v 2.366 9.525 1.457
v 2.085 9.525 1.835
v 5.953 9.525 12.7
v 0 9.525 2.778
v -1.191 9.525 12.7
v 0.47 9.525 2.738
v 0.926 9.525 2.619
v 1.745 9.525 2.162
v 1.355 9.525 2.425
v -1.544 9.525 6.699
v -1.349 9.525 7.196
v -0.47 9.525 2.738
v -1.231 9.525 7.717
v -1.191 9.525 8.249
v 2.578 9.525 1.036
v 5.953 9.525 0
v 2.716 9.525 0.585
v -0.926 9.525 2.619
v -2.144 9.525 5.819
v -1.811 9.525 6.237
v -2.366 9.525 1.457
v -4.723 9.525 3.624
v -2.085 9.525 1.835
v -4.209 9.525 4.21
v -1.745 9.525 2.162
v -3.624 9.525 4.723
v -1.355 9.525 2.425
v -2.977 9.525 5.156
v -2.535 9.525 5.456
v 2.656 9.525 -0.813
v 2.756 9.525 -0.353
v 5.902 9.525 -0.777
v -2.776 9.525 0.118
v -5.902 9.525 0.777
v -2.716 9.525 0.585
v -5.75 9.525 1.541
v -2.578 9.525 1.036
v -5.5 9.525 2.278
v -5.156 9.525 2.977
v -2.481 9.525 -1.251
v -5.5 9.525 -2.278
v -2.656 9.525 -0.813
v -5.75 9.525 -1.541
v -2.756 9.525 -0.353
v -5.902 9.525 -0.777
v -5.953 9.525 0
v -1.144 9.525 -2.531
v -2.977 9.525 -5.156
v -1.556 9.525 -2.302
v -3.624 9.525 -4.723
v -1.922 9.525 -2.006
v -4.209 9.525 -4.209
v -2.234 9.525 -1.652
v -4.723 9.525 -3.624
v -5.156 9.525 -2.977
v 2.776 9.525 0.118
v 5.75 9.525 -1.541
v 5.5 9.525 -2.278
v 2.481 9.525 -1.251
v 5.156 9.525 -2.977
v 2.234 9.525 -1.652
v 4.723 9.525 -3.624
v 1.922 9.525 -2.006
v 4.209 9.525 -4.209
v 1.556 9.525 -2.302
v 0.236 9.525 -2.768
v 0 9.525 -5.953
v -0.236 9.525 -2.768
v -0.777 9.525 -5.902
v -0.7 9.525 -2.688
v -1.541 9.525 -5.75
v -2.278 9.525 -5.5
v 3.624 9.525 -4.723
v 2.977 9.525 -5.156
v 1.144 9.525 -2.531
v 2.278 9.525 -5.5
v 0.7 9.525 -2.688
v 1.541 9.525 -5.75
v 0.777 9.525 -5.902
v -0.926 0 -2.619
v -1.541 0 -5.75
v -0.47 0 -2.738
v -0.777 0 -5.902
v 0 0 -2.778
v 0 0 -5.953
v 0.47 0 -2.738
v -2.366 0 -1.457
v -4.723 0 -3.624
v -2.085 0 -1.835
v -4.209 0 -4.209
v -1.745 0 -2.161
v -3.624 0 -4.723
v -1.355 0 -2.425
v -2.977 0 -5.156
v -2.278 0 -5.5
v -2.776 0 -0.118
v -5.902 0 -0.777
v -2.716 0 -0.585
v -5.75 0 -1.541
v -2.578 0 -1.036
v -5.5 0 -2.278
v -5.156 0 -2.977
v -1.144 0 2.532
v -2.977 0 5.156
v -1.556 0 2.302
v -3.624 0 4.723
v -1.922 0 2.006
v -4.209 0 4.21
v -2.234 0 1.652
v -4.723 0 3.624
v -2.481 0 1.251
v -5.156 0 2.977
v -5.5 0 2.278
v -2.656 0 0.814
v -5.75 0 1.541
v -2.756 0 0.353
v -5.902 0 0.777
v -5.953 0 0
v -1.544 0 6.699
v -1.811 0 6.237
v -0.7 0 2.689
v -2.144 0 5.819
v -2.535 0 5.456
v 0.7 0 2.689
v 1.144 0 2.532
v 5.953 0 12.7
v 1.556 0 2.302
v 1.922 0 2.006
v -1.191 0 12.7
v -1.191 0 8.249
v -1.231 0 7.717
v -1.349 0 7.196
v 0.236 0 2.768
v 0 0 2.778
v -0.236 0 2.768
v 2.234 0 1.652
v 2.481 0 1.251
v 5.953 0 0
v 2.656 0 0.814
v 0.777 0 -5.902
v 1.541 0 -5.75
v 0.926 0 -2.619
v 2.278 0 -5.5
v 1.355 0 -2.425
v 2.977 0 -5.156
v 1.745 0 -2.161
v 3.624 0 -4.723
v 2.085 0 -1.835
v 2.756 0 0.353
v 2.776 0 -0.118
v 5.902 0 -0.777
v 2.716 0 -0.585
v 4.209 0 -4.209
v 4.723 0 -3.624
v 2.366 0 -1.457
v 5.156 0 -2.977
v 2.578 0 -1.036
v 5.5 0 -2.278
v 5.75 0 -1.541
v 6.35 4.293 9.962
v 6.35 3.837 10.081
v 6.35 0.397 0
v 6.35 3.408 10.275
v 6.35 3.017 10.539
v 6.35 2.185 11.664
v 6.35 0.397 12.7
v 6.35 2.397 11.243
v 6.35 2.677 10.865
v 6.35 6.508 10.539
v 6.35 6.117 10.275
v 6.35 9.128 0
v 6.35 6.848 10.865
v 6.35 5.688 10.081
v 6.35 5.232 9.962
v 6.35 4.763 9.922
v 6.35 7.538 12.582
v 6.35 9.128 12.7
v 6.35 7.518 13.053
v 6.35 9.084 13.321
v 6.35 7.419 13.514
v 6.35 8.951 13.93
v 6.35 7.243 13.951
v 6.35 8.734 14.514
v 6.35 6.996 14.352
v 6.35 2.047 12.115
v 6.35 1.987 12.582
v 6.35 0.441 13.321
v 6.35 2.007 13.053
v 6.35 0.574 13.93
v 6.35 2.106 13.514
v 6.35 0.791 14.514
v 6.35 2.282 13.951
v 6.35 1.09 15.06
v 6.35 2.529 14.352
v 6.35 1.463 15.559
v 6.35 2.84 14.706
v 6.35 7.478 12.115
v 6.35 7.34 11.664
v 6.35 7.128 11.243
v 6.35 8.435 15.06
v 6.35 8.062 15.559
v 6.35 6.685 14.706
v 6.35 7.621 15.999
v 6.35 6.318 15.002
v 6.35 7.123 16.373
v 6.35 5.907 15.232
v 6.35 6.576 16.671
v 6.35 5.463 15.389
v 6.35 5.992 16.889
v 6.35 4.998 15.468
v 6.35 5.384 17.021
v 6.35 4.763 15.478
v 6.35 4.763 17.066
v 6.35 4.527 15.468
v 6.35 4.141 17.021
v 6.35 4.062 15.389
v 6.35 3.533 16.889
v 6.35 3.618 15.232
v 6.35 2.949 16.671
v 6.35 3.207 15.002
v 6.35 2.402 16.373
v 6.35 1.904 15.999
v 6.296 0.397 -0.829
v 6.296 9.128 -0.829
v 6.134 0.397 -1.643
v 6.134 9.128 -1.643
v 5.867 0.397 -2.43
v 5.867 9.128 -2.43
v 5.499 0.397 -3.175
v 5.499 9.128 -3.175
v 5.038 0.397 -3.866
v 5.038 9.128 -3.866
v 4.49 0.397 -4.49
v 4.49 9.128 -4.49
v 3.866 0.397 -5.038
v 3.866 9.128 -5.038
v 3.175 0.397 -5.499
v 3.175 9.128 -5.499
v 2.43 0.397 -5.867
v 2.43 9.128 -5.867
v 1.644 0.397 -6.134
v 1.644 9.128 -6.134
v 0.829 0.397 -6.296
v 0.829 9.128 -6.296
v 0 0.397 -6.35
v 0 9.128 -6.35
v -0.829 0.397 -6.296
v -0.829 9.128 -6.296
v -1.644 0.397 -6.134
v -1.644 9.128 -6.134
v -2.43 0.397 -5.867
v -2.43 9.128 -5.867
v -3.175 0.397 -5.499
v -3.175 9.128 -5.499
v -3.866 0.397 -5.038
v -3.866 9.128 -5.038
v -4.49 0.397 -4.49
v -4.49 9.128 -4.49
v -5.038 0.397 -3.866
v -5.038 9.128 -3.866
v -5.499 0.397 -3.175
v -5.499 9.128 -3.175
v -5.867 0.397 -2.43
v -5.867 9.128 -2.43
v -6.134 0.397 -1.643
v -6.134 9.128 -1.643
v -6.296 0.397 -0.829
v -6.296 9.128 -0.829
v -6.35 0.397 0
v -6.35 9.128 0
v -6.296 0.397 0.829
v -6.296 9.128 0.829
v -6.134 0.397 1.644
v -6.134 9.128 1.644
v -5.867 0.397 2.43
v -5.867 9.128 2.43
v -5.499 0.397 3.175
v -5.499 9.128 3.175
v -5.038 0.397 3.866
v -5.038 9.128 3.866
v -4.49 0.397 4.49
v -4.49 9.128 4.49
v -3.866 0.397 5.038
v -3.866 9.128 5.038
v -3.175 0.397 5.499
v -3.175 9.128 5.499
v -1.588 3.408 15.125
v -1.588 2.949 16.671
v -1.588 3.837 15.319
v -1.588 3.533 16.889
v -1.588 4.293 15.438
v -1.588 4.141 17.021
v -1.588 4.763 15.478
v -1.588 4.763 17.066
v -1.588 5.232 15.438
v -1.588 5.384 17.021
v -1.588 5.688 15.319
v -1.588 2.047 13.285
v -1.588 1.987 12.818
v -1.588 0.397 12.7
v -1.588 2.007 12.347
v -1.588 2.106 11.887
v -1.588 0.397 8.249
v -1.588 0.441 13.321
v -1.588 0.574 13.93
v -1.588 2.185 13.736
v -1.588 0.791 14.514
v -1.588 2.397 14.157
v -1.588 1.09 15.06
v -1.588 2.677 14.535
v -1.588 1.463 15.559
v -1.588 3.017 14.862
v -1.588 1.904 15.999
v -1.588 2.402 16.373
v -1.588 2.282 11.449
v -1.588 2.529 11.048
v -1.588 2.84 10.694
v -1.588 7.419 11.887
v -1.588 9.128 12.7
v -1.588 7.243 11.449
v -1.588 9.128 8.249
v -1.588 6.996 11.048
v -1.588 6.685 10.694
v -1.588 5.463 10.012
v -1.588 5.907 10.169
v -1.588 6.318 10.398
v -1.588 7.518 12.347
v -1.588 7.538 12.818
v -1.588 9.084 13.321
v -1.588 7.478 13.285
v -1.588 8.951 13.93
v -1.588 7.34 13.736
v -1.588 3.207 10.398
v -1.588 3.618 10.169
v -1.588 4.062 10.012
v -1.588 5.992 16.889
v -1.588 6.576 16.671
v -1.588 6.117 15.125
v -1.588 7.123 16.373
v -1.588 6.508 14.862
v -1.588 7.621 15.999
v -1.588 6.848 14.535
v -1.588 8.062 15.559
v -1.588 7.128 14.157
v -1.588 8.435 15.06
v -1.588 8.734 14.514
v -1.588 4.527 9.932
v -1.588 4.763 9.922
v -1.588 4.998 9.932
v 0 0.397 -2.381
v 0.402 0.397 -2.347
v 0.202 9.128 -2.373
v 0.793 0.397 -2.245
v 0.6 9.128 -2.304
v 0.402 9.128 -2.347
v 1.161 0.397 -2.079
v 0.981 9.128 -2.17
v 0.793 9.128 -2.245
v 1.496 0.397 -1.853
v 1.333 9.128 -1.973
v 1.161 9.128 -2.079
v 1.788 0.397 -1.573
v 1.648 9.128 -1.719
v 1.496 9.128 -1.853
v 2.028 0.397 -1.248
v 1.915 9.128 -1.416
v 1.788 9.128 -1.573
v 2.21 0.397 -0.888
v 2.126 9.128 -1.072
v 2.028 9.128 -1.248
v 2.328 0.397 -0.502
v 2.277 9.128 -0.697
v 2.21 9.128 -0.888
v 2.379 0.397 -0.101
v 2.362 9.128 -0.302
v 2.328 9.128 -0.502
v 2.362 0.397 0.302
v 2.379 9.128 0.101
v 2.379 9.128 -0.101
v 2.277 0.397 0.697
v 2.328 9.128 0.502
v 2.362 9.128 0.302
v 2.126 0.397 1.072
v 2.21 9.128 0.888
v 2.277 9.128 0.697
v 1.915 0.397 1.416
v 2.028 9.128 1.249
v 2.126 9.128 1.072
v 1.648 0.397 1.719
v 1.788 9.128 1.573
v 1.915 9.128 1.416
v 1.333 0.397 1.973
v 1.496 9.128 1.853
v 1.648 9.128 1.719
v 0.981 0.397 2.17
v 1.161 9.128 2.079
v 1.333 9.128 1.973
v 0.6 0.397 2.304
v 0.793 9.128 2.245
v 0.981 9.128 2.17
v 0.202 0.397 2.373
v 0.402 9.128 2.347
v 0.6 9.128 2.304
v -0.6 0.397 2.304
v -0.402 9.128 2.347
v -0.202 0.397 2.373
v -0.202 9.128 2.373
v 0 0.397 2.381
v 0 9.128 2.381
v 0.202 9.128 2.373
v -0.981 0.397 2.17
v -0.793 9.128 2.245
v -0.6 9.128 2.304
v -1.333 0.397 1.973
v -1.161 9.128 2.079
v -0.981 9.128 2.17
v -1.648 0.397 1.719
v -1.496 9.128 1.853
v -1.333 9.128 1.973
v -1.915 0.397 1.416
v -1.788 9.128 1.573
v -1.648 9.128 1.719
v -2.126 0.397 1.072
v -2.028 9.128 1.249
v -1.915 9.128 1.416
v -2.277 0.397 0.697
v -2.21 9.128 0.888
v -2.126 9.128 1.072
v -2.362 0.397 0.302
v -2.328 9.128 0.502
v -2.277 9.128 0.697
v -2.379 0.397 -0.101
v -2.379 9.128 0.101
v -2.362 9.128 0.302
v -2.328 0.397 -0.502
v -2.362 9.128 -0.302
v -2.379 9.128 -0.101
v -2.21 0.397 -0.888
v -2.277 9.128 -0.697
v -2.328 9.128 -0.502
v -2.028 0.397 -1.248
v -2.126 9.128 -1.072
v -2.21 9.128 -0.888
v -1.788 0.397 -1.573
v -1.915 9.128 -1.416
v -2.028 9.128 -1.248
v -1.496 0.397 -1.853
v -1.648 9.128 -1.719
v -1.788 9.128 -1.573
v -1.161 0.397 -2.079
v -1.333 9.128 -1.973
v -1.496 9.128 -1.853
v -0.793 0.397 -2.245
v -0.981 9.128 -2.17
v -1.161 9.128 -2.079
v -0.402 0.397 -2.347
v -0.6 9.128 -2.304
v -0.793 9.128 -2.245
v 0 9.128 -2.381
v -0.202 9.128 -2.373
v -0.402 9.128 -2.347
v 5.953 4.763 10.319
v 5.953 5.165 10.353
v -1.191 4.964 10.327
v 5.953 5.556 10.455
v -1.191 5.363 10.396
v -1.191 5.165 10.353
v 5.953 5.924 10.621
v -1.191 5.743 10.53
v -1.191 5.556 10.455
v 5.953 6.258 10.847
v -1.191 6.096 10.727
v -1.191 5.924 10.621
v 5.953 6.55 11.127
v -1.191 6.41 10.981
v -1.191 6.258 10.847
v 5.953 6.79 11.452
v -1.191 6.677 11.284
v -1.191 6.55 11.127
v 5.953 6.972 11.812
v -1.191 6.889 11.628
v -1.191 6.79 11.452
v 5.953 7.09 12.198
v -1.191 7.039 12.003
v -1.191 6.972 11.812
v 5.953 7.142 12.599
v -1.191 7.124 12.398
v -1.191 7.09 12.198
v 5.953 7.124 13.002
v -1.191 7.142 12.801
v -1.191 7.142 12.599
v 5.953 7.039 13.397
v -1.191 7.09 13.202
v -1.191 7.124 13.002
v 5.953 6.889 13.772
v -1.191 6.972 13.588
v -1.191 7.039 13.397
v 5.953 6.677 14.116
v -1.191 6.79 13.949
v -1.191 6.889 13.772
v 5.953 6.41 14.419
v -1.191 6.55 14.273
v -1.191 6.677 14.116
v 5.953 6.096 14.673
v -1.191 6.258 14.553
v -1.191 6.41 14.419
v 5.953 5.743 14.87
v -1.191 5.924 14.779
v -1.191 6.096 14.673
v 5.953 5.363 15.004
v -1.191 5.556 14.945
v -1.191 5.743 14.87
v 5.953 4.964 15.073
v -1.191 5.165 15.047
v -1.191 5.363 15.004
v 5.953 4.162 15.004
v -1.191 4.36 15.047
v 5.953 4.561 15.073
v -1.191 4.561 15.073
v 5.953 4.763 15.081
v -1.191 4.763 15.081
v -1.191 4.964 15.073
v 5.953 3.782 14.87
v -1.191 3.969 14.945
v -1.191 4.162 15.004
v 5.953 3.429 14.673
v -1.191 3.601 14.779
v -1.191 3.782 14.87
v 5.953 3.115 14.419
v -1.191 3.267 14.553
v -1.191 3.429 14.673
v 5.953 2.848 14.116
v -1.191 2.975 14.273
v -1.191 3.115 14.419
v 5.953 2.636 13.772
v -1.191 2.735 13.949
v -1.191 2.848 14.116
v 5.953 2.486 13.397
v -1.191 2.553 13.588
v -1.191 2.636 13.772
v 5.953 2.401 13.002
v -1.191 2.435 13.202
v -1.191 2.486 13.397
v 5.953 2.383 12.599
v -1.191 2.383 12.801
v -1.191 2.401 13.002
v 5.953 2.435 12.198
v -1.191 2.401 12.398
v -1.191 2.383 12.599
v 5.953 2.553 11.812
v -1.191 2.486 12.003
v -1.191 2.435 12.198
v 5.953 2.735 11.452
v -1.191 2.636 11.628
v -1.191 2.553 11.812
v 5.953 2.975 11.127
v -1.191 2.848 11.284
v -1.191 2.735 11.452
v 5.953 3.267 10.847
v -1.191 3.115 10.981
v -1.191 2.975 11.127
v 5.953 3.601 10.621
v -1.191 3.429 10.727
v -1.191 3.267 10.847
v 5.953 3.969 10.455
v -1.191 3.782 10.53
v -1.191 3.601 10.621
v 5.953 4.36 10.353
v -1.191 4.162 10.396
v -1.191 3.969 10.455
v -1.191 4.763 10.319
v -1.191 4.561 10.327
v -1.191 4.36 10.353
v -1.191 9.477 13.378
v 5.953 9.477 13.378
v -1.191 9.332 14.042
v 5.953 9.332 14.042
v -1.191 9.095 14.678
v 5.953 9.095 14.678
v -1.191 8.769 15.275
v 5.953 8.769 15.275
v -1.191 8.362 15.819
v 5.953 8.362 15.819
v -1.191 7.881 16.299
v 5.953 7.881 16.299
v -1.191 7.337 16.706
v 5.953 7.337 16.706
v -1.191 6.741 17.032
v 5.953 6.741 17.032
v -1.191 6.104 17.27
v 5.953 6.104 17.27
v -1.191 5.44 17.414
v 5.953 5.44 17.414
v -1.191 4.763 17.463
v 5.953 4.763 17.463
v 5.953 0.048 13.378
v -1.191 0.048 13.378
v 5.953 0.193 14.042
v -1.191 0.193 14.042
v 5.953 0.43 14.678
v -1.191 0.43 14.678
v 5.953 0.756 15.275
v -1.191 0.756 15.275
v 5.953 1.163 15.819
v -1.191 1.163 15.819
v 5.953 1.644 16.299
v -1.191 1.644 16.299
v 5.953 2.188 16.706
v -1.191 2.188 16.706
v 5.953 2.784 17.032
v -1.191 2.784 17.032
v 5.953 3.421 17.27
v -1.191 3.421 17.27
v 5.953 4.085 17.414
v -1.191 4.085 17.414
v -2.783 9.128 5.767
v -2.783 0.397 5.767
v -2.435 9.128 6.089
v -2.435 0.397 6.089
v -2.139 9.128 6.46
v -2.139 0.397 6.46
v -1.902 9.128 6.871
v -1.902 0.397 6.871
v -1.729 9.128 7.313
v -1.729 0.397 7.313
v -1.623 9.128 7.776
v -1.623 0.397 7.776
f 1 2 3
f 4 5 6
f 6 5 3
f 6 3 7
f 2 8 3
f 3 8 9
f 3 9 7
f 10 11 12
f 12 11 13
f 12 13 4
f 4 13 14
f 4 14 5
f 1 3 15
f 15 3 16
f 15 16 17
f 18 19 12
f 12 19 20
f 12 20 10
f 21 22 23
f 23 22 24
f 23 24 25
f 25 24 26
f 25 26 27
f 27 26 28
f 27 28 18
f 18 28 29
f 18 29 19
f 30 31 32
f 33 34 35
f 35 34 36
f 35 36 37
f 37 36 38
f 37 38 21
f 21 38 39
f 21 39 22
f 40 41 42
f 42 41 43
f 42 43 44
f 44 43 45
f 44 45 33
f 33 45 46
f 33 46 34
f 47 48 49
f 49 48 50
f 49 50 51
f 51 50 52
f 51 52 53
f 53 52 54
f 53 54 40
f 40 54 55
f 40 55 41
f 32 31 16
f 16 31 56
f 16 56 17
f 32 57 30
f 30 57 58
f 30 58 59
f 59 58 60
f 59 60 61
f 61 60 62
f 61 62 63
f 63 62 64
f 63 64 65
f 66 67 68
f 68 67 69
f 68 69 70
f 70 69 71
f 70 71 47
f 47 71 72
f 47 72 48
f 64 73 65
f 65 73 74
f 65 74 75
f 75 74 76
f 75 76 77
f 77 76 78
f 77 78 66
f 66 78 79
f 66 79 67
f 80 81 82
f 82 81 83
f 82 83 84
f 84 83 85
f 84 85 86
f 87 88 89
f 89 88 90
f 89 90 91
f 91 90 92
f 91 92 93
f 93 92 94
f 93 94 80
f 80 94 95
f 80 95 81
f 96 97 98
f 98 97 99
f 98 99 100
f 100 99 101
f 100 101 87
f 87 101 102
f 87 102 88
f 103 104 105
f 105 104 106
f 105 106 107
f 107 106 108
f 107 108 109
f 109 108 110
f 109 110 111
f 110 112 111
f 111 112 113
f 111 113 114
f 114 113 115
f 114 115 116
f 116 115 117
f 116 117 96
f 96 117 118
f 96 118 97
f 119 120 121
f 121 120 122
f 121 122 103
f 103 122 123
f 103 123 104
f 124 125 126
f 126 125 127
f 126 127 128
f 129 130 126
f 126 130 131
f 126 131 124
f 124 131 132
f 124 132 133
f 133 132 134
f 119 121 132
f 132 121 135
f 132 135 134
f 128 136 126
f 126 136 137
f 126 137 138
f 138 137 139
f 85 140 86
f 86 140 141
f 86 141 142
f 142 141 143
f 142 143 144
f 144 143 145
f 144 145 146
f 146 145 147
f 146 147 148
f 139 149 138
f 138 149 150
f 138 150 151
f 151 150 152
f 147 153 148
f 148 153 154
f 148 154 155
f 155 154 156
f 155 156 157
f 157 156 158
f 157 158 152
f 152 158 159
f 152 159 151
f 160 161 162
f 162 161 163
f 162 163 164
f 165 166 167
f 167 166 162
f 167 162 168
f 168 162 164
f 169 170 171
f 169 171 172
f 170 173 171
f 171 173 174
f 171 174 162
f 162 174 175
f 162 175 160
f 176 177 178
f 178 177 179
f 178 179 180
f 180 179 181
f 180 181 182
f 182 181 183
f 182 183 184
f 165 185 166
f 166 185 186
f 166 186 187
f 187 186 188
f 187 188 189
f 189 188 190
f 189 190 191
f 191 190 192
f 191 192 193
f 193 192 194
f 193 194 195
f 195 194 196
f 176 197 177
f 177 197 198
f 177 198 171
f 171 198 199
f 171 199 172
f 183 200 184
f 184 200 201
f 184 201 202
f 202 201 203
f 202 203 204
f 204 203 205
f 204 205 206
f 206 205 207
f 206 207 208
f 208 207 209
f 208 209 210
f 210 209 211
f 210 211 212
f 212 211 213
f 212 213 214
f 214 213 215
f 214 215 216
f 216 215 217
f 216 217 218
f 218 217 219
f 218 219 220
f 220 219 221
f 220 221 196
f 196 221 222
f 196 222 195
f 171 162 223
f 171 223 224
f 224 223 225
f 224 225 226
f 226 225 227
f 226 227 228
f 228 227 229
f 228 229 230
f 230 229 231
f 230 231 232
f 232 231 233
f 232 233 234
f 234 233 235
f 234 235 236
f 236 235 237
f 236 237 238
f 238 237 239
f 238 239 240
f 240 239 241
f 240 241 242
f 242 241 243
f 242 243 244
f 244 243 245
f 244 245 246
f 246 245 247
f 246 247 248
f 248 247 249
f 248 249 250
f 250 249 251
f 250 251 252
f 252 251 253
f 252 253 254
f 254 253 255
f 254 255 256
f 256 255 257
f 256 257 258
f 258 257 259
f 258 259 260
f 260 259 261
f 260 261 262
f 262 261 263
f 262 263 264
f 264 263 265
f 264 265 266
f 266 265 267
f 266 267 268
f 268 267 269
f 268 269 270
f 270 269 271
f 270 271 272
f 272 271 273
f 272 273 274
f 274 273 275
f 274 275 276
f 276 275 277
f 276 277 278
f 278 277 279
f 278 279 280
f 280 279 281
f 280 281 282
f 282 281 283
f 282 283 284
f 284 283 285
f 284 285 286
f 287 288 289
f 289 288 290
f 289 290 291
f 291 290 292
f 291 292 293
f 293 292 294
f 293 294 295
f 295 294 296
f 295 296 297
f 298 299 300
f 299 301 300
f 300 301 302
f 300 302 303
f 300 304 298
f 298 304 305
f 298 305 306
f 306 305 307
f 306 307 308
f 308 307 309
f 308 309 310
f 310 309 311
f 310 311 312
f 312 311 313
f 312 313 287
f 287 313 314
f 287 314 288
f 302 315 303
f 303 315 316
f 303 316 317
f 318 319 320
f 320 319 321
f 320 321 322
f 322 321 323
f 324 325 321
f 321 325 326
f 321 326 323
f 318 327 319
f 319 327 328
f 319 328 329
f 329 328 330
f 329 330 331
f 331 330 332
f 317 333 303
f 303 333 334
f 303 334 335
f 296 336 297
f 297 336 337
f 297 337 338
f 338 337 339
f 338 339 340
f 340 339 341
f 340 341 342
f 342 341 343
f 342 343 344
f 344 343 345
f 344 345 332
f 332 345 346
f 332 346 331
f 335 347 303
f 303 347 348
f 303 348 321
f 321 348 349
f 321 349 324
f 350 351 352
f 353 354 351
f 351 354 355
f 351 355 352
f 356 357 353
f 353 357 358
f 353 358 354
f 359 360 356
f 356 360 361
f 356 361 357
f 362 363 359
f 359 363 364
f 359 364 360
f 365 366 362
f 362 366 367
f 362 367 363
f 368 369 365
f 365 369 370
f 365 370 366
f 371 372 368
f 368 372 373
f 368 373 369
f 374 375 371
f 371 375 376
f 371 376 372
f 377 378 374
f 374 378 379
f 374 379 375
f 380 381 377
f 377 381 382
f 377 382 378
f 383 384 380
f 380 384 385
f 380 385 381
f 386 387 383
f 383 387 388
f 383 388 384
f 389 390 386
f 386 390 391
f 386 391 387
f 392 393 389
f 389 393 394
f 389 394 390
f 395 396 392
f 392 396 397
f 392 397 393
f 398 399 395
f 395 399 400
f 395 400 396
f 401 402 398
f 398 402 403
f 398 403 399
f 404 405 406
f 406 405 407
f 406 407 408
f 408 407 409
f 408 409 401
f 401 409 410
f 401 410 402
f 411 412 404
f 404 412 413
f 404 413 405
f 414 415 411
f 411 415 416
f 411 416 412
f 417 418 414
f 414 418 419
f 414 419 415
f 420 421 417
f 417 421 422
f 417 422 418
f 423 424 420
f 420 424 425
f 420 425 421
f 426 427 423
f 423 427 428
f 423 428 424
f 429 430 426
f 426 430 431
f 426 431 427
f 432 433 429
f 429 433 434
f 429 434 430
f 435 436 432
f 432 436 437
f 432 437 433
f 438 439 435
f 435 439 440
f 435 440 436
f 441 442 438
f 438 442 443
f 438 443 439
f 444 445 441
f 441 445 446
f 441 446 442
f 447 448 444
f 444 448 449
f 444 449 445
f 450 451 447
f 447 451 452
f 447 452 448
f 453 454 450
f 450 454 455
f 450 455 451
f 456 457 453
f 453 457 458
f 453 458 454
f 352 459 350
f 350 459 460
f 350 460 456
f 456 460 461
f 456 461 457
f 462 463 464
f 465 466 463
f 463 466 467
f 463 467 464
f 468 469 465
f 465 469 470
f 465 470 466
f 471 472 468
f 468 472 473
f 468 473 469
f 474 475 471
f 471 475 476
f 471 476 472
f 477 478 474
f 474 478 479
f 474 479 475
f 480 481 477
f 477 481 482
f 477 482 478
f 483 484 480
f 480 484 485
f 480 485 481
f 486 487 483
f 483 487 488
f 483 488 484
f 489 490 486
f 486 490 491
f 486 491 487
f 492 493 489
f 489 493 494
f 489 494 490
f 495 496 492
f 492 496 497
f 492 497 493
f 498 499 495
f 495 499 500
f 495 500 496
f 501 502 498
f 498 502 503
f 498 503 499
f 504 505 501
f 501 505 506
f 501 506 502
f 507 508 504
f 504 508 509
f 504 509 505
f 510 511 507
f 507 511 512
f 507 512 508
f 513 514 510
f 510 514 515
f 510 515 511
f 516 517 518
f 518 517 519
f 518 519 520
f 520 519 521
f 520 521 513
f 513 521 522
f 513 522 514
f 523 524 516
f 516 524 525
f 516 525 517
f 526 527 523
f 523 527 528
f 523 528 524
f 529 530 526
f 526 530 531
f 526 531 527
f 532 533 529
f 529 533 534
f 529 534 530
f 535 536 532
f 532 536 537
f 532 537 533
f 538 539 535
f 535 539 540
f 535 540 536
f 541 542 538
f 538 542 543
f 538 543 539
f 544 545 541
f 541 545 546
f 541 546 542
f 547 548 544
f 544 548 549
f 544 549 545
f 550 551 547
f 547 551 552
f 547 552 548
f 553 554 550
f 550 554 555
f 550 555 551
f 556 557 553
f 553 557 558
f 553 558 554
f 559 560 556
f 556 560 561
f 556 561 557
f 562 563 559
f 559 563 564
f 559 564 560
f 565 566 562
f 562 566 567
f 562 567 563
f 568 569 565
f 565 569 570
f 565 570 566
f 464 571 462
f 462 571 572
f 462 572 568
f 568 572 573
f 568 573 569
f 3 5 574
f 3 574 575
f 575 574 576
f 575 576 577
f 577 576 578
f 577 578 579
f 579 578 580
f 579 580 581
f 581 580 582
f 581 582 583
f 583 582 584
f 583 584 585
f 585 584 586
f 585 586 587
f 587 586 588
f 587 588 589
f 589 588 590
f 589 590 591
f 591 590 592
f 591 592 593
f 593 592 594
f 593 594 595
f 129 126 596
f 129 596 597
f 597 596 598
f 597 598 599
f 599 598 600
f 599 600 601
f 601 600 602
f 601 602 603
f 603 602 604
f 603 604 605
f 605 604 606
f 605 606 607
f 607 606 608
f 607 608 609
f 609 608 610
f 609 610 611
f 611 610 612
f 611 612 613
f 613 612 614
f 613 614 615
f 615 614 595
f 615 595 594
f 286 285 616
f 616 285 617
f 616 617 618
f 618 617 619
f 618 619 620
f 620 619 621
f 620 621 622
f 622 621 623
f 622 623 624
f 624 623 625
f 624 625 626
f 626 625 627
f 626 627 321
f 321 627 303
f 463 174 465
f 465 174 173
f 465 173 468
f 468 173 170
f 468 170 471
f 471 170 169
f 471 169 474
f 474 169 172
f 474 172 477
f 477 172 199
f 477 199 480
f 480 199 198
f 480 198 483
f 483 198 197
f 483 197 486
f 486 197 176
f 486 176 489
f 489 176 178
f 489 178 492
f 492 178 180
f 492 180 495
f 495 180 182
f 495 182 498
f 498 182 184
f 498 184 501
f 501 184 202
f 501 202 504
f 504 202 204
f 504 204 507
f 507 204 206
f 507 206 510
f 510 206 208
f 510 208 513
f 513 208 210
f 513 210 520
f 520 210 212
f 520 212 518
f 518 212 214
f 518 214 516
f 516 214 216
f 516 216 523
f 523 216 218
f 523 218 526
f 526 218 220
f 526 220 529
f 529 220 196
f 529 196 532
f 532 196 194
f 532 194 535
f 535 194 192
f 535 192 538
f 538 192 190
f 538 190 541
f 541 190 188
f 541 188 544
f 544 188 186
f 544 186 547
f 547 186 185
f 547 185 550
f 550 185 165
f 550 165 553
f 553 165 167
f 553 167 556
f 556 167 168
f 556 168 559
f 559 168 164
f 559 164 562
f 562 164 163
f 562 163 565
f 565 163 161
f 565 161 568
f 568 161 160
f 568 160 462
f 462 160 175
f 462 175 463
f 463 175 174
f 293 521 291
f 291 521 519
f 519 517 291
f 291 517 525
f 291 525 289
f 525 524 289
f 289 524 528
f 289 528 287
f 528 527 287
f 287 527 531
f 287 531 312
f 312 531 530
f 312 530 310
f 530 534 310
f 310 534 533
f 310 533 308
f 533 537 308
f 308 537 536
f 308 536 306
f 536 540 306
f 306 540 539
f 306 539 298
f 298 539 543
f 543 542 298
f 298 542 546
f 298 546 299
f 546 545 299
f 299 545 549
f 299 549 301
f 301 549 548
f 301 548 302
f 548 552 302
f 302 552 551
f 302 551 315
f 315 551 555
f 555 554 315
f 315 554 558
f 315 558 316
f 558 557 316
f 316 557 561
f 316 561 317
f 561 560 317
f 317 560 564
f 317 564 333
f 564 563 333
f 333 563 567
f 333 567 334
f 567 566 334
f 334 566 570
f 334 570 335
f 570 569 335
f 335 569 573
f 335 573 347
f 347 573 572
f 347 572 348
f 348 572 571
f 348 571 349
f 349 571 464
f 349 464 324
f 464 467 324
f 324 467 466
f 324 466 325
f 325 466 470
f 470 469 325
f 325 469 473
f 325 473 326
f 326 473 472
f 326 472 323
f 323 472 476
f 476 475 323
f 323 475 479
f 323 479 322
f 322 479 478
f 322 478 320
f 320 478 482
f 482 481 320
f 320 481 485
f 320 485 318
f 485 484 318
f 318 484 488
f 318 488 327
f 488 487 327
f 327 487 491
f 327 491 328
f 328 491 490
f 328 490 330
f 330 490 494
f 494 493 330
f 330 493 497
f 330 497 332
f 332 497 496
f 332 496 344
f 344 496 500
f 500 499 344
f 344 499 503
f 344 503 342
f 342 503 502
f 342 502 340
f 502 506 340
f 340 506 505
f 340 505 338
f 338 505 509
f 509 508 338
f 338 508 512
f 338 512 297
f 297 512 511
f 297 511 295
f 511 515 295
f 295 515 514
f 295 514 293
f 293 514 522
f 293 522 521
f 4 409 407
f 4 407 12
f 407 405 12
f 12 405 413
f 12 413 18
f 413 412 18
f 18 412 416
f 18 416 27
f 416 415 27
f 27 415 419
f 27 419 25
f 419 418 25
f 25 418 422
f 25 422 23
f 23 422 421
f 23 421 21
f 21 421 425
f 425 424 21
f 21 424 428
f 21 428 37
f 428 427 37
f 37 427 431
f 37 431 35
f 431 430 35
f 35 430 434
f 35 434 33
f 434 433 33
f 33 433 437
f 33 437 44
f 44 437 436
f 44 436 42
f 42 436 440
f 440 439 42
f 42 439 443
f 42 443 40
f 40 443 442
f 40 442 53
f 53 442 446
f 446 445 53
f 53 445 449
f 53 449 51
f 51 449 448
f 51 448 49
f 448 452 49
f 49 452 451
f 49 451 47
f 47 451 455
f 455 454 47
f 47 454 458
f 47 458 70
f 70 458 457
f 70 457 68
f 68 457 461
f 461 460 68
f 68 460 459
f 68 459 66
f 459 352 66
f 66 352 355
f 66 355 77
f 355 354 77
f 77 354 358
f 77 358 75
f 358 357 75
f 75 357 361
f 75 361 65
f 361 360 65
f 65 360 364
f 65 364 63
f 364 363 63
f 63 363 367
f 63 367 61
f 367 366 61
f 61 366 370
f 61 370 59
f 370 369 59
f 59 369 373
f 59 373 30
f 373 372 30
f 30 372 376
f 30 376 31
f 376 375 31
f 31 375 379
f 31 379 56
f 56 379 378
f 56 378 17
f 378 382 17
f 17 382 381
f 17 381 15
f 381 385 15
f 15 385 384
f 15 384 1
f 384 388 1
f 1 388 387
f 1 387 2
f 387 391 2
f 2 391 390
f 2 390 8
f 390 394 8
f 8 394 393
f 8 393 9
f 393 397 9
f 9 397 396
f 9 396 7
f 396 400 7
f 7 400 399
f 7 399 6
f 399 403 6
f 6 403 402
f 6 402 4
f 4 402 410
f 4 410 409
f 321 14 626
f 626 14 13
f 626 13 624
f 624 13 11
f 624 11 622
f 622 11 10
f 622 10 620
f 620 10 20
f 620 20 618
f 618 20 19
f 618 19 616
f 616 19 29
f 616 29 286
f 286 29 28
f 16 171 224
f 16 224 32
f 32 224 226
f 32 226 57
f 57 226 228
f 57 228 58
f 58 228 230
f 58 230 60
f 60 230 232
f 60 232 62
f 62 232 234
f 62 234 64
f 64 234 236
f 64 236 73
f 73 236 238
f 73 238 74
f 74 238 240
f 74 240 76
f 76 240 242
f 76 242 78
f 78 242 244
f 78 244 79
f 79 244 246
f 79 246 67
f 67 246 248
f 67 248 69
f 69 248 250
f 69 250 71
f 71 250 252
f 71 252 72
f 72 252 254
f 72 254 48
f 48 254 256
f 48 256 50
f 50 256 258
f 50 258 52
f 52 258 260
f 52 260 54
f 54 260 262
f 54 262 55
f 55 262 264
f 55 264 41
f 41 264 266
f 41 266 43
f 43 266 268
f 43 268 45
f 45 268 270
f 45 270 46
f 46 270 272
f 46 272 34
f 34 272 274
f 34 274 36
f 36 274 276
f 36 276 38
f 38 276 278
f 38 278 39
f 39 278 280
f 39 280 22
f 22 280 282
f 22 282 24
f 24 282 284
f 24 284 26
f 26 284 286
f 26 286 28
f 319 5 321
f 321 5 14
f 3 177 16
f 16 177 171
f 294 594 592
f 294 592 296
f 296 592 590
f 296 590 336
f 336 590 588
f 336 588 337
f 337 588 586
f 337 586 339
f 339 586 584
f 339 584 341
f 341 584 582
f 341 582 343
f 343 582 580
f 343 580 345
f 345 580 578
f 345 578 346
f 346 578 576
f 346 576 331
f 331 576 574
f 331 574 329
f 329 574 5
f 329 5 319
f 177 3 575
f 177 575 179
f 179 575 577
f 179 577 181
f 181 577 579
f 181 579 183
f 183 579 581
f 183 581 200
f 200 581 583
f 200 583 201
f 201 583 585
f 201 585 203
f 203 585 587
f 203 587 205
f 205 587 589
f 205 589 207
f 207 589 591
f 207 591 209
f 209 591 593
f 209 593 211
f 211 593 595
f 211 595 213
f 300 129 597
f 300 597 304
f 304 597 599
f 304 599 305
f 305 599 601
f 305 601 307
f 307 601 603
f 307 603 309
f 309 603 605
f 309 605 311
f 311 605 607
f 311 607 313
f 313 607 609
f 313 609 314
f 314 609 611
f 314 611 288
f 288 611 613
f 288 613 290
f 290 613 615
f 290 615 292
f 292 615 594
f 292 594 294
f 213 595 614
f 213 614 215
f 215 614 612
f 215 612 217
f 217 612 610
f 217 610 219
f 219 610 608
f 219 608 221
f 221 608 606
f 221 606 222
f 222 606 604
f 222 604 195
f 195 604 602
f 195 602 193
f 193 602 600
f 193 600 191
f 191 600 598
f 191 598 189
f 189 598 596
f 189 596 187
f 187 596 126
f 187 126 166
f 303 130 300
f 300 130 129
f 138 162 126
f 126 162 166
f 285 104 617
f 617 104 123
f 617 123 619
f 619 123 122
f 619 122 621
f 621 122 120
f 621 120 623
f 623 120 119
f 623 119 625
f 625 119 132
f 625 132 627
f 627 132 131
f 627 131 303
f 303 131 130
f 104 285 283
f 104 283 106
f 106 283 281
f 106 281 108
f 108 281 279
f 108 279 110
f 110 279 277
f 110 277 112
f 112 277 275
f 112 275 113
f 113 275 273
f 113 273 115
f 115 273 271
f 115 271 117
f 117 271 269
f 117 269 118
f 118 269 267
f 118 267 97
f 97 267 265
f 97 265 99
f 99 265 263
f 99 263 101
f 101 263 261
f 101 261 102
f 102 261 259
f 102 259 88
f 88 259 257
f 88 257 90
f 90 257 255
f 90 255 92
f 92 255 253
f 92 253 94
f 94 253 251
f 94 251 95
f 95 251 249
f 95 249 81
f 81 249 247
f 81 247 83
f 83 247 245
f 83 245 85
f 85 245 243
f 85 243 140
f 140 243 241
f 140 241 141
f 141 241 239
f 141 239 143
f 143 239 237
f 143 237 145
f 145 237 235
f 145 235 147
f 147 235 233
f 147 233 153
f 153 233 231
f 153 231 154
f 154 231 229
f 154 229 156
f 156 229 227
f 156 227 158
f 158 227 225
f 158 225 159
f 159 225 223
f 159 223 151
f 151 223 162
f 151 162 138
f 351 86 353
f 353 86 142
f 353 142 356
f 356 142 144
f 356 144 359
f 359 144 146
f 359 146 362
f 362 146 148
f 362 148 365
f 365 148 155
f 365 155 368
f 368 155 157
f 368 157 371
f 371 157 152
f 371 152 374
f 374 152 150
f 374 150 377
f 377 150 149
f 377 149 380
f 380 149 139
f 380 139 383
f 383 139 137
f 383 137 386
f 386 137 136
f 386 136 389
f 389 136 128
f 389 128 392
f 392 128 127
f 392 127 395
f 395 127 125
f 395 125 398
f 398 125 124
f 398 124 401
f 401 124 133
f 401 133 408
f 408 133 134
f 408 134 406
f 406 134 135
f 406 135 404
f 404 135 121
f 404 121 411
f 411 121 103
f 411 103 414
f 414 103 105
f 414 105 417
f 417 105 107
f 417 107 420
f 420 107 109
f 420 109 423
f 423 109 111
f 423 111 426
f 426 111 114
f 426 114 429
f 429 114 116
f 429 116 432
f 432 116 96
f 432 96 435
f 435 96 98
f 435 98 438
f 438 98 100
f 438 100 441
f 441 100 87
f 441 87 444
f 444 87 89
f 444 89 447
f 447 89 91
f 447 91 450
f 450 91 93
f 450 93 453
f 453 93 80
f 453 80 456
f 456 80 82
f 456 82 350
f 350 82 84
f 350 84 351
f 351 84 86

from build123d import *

# Parameters (mm, degrees)
SKETCH1_R               = 2.38125
BOSS_EXTRUDE1_DEPTH     = 9.525
CUT_EXTRUDE3_DEPTH      = 24.599884136
CUT_EXTRUDE3_DEPTH_BACK = 24.599884136
SKETCH5_R               = 2.38125
FILLET1_R               = 4.7625
FILLET2_R               = 3.175
CHAMFER1_SIZE           = 0.396875


with BuildPart() as part:
    # Sketch1 → Boss-Extrude1 (new body)
    with BuildSketch(Plane(origin=(0, 0, 0), x_dir=(1, 0, 0), z_dir=(0, 1, 0))):
        with BuildLine():
            Line((-1.5875, -17.4625), (-1.5875, -6.148361062))
            ThreePointArc((-1.5875, -6.148361062), (-3.888564967, 5.020115786), (6.35, 0))
            Line((6.35, 0), (6.35, -17.4625))
            Line((6.35, -17.4625), (-1.5875, -17.4625))
        make_face()
        with Locations(Location((0, 0, 0), (0, 0, 90))):
            Circle(SKETCH1_R, mode=Mode.SUBTRACT)
    extrude(amount=BOSS_EXTRUDE1_DEPTH)

    # Sketch5 → Cut-Extrude3 (cut, two sides: drawn at the far end of the back side and taken through both)
    with BuildSketch(Plane(origin=(6.35, 0, 0), x_dir=(0, 0, -1), z_dir=(1, 0, 0)).offset(-CUT_EXTRUDE3_DEPTH_BACK)):
        with Locations((-12.7, 4.7625)):
            Circle(SKETCH5_R)
    extrude(amount=CUT_EXTRUDE3_DEPTH + CUT_EXTRUDE3_DEPTH_BACK, mode=Mode.SUBTRACT)

    # Fillet1
    fillet1_edges = [part.edges().sort_by_distance(p)[0] for p in [
        (2.38125, 0, 17.4625),
        (2.38125, 9.525, 17.4625),
    ]]
    fillet(fillet1_edges, radius=FILLET1_R - 0.0001)  # a hair under: the kernel refuses the full size

    # Fillet2
    fillet2_edges = [part.edges().sort_by_distance(p)[0] for p in [
        (-1.5875, 4.7625, 6.148361062),
    ]]
    fillet(fillet2_edges, radius=FILLET2_R)

    # Chamfer1
    chamfer1_edges = [part.edges().sort_by_distance(p)[0] for p in [
        (0, 0, 2.38125),
        (0, 9.525, 2.38125),
        (-3.175, 9.525, -5.499261314),
        (-1.5875, 4.7625, 15.08125),
        (6.35, 4.7625, 15.08125),
        (6.35, 0, 6.35005),
        (6.35, 9.525, 6.35005),
        (6.35, 8.130125335, 16.067625335),
        (6.35, 1.394874665, 16.067625335),
        (-1.5875, 8.130125335, 16.067625335),
        (-1.5875, 1.394874665, 16.067625335),
        (-1.5875, 0, 10.474495986),
        (-1.5875, 9.525, 10.474495986),
        (-2.012869343, 0, 6.661391971),
        (-2.012869343, 9.525, 6.661391971),
        (-3.175, 0, -5.499261314),
    ]]
    chamfer(chamfer1_edges, length=CHAMFER1_SIZE)


solid = part.part
